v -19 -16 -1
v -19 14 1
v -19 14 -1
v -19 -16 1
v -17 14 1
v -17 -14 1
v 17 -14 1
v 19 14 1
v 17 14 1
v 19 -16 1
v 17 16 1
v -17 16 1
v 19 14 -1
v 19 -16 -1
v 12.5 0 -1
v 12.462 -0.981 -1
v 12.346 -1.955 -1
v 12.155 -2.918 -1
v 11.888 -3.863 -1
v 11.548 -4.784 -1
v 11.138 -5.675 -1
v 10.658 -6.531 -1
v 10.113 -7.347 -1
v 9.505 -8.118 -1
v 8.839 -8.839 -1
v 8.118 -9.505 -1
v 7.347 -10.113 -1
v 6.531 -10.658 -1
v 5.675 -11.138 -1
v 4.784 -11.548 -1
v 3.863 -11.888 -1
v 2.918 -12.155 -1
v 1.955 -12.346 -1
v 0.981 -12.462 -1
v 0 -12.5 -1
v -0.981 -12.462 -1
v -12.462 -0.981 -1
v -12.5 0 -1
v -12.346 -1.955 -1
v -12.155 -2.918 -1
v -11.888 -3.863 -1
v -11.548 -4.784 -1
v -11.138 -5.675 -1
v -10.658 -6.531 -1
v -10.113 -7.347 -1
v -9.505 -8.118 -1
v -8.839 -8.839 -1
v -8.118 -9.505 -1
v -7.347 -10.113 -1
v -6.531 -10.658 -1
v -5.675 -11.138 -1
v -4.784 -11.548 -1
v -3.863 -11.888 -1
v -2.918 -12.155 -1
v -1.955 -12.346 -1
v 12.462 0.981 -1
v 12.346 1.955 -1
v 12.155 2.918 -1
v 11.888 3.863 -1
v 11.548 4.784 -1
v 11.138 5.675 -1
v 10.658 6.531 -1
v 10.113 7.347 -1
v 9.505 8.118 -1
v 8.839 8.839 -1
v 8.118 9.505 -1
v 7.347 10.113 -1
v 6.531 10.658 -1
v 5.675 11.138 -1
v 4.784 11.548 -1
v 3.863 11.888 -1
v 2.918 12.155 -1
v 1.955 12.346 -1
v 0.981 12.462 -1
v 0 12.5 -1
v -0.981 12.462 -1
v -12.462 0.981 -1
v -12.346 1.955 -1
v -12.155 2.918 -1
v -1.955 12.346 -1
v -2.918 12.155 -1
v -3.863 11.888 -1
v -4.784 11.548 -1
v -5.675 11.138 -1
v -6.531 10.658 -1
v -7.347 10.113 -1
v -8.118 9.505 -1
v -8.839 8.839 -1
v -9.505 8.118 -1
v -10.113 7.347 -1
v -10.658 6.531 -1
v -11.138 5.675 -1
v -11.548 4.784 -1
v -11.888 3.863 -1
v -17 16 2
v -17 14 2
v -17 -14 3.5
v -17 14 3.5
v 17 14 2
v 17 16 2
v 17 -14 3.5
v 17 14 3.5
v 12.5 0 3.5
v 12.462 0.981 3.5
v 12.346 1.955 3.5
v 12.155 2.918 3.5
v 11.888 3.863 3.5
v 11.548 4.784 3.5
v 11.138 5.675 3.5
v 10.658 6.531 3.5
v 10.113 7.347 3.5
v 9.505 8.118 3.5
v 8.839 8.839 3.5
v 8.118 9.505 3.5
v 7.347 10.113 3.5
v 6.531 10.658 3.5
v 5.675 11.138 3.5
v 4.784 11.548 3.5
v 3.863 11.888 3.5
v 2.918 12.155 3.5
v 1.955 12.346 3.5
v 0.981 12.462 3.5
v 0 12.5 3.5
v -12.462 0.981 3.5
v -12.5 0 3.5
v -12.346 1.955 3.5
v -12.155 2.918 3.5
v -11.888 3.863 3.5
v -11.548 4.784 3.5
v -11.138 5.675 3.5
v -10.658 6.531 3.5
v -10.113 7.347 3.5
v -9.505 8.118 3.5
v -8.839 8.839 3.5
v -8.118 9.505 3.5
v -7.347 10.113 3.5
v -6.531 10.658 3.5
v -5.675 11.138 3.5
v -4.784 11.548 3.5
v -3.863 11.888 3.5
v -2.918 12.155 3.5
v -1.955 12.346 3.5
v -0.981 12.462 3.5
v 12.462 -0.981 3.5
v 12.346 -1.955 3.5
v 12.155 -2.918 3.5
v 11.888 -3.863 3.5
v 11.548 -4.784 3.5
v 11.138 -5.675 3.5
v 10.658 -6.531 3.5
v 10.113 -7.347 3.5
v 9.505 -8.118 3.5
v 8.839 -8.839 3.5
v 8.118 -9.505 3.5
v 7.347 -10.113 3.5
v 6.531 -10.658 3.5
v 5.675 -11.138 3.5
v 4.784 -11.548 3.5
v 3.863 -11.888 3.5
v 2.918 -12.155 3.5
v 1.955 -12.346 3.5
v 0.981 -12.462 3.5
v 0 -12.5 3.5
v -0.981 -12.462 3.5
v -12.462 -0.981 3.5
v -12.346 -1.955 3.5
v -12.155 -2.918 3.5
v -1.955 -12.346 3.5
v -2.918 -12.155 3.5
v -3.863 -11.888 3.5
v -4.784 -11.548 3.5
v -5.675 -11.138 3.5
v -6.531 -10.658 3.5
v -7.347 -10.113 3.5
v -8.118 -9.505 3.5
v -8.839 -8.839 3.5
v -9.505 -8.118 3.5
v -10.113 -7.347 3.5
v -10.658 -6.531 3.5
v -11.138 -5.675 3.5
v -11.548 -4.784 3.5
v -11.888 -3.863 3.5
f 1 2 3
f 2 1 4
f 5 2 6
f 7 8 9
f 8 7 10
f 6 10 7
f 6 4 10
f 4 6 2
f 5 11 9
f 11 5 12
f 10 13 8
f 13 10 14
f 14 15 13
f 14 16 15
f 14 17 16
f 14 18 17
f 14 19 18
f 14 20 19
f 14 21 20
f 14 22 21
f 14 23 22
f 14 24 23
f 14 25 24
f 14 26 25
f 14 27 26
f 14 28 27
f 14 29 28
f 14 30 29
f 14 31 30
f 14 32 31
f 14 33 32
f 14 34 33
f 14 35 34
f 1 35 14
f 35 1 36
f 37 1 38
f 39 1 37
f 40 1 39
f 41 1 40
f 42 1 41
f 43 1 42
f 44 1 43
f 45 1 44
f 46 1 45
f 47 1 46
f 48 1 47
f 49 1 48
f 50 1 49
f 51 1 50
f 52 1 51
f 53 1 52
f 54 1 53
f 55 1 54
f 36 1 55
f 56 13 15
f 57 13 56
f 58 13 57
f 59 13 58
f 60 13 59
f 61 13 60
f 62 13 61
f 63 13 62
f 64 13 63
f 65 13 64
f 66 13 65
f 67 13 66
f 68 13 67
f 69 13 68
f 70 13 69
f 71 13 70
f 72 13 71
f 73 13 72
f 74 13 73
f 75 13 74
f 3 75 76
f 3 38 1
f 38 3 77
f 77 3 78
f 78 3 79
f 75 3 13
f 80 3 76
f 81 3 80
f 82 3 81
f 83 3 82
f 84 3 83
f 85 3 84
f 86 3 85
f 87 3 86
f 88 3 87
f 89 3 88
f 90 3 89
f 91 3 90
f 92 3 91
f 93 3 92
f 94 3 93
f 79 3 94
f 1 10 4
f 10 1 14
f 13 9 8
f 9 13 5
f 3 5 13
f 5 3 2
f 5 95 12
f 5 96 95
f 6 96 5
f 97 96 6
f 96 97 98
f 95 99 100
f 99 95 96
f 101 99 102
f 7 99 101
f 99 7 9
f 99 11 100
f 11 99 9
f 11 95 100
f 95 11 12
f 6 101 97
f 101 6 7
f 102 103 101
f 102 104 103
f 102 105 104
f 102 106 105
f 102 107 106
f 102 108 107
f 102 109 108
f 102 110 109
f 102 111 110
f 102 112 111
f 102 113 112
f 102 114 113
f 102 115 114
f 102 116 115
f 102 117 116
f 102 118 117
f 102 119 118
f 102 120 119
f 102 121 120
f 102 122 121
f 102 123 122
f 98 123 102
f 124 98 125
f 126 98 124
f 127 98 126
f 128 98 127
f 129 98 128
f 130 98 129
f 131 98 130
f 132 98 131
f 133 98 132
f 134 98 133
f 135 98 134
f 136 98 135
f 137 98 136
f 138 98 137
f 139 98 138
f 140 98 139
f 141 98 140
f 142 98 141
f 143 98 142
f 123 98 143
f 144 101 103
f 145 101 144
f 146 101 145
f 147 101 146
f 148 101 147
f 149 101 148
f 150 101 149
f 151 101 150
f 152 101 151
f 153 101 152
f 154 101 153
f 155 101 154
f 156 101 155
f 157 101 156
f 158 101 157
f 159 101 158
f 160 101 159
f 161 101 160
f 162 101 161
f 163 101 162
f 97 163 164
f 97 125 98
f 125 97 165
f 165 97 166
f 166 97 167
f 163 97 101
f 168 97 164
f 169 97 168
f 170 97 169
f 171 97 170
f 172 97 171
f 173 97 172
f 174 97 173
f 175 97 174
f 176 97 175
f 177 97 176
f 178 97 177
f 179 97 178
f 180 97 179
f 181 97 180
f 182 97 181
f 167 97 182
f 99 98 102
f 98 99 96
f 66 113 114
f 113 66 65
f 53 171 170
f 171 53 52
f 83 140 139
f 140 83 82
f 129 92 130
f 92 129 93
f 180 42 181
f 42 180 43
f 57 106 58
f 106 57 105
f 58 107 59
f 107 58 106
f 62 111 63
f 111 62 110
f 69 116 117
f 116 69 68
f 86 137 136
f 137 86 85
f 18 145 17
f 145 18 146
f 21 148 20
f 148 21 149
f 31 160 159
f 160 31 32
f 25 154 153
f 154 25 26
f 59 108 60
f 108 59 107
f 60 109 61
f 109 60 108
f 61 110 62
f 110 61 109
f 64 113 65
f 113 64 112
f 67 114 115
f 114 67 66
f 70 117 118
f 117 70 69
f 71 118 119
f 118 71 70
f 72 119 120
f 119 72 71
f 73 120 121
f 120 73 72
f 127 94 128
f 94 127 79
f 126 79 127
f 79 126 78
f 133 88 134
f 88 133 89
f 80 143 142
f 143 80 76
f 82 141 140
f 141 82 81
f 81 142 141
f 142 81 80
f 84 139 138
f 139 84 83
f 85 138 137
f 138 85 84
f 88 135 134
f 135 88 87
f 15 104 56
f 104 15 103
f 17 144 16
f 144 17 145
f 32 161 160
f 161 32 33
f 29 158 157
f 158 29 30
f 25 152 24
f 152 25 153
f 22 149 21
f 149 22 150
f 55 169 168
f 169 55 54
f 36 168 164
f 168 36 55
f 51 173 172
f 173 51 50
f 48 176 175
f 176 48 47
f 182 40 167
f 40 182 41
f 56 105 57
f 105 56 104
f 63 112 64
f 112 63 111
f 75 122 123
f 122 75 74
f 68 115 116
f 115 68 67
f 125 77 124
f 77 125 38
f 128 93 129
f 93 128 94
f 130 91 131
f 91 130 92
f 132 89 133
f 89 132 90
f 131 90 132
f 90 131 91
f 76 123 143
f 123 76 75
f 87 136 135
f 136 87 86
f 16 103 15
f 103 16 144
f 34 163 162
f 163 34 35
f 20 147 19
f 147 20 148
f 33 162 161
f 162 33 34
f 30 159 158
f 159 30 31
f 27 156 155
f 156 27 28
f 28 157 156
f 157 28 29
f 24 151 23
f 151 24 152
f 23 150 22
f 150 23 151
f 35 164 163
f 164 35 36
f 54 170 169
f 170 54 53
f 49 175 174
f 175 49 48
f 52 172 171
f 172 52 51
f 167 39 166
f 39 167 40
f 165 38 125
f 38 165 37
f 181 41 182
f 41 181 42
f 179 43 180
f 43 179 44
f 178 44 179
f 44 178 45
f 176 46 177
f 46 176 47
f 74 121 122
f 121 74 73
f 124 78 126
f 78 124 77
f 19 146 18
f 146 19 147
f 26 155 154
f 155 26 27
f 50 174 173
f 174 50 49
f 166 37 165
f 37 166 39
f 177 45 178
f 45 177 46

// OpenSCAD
difference() {
union() {
translate([0,-1,0])
cube([38, 30, 2], center=true);
translate([0,1,1.5])
cube([34, 30, 1], center=true);
translate([0,0,2.75])
cube([34, 28, 1.5], center=true);
}

cylinder(d=25, h=30, center=true, $fn=80);
}
